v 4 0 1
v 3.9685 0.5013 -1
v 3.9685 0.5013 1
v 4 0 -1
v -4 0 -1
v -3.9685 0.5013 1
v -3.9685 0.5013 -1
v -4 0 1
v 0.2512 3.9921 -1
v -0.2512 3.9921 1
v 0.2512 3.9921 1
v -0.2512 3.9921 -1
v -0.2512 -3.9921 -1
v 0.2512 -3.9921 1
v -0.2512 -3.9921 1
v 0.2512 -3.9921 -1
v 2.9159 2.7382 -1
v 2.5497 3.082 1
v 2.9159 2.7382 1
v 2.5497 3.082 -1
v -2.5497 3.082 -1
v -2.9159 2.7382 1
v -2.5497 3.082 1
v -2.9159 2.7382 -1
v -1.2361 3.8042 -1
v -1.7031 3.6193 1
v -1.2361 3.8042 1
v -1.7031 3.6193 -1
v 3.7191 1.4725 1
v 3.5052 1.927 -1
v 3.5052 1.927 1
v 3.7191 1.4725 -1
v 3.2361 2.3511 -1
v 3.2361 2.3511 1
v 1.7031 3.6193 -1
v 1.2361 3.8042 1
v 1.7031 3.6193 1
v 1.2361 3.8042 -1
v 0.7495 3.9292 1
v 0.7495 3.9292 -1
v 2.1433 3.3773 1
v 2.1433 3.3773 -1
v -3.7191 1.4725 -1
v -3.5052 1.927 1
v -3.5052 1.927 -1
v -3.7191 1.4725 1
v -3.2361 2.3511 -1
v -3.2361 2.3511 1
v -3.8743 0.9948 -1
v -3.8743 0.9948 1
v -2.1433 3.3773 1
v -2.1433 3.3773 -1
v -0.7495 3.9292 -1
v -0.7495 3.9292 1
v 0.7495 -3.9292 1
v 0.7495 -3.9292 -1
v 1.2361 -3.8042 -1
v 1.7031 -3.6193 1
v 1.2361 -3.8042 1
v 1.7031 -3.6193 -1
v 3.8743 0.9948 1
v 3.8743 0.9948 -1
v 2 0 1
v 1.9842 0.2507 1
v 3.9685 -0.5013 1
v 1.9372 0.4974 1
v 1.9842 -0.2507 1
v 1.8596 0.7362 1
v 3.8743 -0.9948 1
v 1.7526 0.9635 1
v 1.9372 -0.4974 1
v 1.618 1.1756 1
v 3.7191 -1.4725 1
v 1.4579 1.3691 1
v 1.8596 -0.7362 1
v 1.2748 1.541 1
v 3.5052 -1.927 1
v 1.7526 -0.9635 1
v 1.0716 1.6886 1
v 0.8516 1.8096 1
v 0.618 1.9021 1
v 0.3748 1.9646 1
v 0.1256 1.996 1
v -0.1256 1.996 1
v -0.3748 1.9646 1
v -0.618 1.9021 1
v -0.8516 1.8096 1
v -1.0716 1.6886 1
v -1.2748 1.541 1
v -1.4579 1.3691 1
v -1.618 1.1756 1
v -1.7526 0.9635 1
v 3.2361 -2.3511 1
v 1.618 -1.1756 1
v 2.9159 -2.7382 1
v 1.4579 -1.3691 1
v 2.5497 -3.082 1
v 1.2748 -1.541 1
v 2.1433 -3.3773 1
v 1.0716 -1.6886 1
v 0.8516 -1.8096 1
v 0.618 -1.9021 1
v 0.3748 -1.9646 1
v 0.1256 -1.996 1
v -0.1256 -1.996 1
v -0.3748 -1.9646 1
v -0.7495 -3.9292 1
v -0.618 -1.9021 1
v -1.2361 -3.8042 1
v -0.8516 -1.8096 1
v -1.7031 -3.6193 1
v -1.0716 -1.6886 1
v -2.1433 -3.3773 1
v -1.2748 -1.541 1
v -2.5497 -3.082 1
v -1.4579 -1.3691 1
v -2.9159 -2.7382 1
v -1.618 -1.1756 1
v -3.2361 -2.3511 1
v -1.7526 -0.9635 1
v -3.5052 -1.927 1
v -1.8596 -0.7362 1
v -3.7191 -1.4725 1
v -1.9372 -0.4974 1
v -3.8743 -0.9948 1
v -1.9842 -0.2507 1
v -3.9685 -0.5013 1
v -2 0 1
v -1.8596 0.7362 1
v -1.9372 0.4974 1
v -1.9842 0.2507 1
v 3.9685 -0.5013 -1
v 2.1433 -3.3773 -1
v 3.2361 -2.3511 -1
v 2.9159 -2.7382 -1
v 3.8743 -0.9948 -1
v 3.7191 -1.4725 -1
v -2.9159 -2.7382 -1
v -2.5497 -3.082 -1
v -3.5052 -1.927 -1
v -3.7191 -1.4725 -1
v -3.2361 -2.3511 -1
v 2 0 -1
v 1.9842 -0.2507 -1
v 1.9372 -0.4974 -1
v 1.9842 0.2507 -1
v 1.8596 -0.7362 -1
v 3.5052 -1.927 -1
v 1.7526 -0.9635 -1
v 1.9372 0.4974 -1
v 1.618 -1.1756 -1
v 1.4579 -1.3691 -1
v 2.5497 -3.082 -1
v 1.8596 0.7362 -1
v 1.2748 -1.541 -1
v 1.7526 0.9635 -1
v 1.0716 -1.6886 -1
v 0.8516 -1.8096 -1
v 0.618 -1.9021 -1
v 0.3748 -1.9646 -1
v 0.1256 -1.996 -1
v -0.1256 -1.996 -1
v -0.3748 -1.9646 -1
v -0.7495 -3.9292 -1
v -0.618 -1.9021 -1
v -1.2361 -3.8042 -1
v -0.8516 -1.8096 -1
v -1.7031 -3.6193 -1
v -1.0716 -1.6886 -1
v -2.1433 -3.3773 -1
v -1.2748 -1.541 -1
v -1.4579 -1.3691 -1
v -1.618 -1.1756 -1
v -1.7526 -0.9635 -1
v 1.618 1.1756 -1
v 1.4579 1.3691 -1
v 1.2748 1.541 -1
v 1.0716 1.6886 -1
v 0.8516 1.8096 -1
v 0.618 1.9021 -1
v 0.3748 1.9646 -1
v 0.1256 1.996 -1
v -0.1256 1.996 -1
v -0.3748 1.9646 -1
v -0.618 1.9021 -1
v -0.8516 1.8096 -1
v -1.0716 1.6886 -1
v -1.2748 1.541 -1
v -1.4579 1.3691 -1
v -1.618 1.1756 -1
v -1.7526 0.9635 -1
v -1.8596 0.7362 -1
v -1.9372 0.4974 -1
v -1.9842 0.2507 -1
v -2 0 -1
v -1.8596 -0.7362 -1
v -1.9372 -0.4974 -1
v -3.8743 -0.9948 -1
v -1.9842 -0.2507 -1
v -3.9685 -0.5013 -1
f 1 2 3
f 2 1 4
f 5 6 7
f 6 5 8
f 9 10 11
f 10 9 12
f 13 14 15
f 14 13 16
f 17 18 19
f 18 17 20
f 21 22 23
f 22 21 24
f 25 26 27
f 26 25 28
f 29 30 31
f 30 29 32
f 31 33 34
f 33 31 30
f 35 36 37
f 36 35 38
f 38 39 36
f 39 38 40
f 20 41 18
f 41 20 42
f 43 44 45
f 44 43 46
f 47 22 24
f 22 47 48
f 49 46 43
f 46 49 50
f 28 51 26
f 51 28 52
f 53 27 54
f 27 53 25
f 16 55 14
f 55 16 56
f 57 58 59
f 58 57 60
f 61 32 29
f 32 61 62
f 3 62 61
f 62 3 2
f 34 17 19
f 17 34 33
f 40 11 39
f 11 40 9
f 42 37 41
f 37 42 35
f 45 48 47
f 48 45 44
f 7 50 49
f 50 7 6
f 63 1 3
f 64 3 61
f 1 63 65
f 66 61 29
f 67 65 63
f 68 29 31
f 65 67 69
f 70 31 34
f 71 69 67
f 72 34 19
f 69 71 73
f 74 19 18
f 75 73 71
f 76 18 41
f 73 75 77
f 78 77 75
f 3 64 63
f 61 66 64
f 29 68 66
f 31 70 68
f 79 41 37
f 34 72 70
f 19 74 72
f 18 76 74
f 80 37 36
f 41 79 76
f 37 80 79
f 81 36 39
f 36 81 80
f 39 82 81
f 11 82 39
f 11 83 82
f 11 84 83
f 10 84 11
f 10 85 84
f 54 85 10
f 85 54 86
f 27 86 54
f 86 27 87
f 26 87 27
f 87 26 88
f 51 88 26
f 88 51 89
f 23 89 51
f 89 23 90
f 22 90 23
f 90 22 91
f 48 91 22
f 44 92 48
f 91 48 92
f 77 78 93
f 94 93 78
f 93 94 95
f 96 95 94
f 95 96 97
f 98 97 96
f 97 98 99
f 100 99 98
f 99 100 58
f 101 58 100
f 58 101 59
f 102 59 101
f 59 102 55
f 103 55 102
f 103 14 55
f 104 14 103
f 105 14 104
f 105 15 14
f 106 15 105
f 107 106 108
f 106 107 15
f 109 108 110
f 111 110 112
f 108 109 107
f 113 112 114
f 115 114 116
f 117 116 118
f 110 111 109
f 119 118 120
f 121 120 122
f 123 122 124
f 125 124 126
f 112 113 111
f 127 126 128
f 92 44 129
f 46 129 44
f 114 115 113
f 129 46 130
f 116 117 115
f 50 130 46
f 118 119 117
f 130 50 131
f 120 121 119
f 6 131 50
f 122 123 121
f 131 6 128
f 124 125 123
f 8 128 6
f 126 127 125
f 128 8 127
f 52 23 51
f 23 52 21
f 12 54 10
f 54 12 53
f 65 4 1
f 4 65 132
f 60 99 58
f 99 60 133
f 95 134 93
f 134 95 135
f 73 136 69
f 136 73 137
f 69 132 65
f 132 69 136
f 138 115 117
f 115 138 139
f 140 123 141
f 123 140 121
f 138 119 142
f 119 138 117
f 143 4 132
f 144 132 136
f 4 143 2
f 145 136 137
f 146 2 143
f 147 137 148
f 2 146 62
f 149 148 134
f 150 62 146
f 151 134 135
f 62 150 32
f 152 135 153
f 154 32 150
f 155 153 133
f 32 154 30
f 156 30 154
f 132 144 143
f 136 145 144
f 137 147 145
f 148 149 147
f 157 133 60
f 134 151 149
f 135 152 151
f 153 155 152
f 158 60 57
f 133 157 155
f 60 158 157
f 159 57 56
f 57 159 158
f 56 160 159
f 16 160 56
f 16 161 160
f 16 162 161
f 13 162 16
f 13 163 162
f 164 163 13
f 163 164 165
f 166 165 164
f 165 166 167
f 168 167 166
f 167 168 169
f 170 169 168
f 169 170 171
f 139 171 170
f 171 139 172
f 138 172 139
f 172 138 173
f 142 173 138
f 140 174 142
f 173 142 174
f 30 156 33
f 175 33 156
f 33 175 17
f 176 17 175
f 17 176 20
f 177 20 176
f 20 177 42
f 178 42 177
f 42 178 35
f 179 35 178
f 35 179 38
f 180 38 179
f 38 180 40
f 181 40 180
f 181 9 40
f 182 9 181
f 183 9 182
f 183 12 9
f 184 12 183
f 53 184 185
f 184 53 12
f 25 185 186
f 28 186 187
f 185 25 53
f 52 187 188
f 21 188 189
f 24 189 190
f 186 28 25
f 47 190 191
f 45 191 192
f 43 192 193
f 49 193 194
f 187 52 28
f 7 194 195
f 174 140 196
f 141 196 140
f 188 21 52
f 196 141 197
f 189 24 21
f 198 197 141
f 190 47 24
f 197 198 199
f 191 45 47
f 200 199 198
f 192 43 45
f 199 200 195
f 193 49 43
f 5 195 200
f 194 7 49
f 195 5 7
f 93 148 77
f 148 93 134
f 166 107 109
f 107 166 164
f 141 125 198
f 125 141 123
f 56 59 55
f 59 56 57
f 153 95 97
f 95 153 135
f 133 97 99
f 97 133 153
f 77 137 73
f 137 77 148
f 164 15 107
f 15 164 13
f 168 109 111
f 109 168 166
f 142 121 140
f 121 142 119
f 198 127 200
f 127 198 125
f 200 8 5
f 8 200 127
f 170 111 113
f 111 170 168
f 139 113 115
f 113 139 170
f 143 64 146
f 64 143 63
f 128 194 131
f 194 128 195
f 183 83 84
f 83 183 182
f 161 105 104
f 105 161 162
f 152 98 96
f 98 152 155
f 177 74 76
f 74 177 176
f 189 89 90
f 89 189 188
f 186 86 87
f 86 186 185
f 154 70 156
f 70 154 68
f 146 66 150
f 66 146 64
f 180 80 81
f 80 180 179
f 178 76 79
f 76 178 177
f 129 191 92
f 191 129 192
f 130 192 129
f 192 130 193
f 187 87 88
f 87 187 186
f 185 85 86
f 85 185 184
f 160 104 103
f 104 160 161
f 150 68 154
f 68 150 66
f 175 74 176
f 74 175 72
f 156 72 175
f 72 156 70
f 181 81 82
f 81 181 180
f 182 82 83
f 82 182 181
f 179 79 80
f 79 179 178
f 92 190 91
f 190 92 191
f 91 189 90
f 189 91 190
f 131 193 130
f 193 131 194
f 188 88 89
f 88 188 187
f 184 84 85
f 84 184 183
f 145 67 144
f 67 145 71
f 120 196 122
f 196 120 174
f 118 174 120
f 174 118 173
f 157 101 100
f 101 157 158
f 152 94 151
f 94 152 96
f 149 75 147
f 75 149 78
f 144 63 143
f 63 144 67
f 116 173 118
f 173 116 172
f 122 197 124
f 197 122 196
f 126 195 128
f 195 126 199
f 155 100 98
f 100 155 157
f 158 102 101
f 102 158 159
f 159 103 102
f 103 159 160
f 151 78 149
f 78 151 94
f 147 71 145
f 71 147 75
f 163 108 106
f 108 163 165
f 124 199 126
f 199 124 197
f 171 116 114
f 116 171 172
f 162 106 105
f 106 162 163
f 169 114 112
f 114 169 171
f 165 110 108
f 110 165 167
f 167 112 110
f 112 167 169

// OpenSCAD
$fn = 50;


difference() {
	union() {
		translate(v = [0, 0, -1.0000000000]) {
			cylinder(h = 2, r = 4.0000000000);
		}
	}
	union() {
		translate(v = [0, 0, -100.0000000000]) {
			cylinder(h = 200, r = 2);
		}
	}
}
